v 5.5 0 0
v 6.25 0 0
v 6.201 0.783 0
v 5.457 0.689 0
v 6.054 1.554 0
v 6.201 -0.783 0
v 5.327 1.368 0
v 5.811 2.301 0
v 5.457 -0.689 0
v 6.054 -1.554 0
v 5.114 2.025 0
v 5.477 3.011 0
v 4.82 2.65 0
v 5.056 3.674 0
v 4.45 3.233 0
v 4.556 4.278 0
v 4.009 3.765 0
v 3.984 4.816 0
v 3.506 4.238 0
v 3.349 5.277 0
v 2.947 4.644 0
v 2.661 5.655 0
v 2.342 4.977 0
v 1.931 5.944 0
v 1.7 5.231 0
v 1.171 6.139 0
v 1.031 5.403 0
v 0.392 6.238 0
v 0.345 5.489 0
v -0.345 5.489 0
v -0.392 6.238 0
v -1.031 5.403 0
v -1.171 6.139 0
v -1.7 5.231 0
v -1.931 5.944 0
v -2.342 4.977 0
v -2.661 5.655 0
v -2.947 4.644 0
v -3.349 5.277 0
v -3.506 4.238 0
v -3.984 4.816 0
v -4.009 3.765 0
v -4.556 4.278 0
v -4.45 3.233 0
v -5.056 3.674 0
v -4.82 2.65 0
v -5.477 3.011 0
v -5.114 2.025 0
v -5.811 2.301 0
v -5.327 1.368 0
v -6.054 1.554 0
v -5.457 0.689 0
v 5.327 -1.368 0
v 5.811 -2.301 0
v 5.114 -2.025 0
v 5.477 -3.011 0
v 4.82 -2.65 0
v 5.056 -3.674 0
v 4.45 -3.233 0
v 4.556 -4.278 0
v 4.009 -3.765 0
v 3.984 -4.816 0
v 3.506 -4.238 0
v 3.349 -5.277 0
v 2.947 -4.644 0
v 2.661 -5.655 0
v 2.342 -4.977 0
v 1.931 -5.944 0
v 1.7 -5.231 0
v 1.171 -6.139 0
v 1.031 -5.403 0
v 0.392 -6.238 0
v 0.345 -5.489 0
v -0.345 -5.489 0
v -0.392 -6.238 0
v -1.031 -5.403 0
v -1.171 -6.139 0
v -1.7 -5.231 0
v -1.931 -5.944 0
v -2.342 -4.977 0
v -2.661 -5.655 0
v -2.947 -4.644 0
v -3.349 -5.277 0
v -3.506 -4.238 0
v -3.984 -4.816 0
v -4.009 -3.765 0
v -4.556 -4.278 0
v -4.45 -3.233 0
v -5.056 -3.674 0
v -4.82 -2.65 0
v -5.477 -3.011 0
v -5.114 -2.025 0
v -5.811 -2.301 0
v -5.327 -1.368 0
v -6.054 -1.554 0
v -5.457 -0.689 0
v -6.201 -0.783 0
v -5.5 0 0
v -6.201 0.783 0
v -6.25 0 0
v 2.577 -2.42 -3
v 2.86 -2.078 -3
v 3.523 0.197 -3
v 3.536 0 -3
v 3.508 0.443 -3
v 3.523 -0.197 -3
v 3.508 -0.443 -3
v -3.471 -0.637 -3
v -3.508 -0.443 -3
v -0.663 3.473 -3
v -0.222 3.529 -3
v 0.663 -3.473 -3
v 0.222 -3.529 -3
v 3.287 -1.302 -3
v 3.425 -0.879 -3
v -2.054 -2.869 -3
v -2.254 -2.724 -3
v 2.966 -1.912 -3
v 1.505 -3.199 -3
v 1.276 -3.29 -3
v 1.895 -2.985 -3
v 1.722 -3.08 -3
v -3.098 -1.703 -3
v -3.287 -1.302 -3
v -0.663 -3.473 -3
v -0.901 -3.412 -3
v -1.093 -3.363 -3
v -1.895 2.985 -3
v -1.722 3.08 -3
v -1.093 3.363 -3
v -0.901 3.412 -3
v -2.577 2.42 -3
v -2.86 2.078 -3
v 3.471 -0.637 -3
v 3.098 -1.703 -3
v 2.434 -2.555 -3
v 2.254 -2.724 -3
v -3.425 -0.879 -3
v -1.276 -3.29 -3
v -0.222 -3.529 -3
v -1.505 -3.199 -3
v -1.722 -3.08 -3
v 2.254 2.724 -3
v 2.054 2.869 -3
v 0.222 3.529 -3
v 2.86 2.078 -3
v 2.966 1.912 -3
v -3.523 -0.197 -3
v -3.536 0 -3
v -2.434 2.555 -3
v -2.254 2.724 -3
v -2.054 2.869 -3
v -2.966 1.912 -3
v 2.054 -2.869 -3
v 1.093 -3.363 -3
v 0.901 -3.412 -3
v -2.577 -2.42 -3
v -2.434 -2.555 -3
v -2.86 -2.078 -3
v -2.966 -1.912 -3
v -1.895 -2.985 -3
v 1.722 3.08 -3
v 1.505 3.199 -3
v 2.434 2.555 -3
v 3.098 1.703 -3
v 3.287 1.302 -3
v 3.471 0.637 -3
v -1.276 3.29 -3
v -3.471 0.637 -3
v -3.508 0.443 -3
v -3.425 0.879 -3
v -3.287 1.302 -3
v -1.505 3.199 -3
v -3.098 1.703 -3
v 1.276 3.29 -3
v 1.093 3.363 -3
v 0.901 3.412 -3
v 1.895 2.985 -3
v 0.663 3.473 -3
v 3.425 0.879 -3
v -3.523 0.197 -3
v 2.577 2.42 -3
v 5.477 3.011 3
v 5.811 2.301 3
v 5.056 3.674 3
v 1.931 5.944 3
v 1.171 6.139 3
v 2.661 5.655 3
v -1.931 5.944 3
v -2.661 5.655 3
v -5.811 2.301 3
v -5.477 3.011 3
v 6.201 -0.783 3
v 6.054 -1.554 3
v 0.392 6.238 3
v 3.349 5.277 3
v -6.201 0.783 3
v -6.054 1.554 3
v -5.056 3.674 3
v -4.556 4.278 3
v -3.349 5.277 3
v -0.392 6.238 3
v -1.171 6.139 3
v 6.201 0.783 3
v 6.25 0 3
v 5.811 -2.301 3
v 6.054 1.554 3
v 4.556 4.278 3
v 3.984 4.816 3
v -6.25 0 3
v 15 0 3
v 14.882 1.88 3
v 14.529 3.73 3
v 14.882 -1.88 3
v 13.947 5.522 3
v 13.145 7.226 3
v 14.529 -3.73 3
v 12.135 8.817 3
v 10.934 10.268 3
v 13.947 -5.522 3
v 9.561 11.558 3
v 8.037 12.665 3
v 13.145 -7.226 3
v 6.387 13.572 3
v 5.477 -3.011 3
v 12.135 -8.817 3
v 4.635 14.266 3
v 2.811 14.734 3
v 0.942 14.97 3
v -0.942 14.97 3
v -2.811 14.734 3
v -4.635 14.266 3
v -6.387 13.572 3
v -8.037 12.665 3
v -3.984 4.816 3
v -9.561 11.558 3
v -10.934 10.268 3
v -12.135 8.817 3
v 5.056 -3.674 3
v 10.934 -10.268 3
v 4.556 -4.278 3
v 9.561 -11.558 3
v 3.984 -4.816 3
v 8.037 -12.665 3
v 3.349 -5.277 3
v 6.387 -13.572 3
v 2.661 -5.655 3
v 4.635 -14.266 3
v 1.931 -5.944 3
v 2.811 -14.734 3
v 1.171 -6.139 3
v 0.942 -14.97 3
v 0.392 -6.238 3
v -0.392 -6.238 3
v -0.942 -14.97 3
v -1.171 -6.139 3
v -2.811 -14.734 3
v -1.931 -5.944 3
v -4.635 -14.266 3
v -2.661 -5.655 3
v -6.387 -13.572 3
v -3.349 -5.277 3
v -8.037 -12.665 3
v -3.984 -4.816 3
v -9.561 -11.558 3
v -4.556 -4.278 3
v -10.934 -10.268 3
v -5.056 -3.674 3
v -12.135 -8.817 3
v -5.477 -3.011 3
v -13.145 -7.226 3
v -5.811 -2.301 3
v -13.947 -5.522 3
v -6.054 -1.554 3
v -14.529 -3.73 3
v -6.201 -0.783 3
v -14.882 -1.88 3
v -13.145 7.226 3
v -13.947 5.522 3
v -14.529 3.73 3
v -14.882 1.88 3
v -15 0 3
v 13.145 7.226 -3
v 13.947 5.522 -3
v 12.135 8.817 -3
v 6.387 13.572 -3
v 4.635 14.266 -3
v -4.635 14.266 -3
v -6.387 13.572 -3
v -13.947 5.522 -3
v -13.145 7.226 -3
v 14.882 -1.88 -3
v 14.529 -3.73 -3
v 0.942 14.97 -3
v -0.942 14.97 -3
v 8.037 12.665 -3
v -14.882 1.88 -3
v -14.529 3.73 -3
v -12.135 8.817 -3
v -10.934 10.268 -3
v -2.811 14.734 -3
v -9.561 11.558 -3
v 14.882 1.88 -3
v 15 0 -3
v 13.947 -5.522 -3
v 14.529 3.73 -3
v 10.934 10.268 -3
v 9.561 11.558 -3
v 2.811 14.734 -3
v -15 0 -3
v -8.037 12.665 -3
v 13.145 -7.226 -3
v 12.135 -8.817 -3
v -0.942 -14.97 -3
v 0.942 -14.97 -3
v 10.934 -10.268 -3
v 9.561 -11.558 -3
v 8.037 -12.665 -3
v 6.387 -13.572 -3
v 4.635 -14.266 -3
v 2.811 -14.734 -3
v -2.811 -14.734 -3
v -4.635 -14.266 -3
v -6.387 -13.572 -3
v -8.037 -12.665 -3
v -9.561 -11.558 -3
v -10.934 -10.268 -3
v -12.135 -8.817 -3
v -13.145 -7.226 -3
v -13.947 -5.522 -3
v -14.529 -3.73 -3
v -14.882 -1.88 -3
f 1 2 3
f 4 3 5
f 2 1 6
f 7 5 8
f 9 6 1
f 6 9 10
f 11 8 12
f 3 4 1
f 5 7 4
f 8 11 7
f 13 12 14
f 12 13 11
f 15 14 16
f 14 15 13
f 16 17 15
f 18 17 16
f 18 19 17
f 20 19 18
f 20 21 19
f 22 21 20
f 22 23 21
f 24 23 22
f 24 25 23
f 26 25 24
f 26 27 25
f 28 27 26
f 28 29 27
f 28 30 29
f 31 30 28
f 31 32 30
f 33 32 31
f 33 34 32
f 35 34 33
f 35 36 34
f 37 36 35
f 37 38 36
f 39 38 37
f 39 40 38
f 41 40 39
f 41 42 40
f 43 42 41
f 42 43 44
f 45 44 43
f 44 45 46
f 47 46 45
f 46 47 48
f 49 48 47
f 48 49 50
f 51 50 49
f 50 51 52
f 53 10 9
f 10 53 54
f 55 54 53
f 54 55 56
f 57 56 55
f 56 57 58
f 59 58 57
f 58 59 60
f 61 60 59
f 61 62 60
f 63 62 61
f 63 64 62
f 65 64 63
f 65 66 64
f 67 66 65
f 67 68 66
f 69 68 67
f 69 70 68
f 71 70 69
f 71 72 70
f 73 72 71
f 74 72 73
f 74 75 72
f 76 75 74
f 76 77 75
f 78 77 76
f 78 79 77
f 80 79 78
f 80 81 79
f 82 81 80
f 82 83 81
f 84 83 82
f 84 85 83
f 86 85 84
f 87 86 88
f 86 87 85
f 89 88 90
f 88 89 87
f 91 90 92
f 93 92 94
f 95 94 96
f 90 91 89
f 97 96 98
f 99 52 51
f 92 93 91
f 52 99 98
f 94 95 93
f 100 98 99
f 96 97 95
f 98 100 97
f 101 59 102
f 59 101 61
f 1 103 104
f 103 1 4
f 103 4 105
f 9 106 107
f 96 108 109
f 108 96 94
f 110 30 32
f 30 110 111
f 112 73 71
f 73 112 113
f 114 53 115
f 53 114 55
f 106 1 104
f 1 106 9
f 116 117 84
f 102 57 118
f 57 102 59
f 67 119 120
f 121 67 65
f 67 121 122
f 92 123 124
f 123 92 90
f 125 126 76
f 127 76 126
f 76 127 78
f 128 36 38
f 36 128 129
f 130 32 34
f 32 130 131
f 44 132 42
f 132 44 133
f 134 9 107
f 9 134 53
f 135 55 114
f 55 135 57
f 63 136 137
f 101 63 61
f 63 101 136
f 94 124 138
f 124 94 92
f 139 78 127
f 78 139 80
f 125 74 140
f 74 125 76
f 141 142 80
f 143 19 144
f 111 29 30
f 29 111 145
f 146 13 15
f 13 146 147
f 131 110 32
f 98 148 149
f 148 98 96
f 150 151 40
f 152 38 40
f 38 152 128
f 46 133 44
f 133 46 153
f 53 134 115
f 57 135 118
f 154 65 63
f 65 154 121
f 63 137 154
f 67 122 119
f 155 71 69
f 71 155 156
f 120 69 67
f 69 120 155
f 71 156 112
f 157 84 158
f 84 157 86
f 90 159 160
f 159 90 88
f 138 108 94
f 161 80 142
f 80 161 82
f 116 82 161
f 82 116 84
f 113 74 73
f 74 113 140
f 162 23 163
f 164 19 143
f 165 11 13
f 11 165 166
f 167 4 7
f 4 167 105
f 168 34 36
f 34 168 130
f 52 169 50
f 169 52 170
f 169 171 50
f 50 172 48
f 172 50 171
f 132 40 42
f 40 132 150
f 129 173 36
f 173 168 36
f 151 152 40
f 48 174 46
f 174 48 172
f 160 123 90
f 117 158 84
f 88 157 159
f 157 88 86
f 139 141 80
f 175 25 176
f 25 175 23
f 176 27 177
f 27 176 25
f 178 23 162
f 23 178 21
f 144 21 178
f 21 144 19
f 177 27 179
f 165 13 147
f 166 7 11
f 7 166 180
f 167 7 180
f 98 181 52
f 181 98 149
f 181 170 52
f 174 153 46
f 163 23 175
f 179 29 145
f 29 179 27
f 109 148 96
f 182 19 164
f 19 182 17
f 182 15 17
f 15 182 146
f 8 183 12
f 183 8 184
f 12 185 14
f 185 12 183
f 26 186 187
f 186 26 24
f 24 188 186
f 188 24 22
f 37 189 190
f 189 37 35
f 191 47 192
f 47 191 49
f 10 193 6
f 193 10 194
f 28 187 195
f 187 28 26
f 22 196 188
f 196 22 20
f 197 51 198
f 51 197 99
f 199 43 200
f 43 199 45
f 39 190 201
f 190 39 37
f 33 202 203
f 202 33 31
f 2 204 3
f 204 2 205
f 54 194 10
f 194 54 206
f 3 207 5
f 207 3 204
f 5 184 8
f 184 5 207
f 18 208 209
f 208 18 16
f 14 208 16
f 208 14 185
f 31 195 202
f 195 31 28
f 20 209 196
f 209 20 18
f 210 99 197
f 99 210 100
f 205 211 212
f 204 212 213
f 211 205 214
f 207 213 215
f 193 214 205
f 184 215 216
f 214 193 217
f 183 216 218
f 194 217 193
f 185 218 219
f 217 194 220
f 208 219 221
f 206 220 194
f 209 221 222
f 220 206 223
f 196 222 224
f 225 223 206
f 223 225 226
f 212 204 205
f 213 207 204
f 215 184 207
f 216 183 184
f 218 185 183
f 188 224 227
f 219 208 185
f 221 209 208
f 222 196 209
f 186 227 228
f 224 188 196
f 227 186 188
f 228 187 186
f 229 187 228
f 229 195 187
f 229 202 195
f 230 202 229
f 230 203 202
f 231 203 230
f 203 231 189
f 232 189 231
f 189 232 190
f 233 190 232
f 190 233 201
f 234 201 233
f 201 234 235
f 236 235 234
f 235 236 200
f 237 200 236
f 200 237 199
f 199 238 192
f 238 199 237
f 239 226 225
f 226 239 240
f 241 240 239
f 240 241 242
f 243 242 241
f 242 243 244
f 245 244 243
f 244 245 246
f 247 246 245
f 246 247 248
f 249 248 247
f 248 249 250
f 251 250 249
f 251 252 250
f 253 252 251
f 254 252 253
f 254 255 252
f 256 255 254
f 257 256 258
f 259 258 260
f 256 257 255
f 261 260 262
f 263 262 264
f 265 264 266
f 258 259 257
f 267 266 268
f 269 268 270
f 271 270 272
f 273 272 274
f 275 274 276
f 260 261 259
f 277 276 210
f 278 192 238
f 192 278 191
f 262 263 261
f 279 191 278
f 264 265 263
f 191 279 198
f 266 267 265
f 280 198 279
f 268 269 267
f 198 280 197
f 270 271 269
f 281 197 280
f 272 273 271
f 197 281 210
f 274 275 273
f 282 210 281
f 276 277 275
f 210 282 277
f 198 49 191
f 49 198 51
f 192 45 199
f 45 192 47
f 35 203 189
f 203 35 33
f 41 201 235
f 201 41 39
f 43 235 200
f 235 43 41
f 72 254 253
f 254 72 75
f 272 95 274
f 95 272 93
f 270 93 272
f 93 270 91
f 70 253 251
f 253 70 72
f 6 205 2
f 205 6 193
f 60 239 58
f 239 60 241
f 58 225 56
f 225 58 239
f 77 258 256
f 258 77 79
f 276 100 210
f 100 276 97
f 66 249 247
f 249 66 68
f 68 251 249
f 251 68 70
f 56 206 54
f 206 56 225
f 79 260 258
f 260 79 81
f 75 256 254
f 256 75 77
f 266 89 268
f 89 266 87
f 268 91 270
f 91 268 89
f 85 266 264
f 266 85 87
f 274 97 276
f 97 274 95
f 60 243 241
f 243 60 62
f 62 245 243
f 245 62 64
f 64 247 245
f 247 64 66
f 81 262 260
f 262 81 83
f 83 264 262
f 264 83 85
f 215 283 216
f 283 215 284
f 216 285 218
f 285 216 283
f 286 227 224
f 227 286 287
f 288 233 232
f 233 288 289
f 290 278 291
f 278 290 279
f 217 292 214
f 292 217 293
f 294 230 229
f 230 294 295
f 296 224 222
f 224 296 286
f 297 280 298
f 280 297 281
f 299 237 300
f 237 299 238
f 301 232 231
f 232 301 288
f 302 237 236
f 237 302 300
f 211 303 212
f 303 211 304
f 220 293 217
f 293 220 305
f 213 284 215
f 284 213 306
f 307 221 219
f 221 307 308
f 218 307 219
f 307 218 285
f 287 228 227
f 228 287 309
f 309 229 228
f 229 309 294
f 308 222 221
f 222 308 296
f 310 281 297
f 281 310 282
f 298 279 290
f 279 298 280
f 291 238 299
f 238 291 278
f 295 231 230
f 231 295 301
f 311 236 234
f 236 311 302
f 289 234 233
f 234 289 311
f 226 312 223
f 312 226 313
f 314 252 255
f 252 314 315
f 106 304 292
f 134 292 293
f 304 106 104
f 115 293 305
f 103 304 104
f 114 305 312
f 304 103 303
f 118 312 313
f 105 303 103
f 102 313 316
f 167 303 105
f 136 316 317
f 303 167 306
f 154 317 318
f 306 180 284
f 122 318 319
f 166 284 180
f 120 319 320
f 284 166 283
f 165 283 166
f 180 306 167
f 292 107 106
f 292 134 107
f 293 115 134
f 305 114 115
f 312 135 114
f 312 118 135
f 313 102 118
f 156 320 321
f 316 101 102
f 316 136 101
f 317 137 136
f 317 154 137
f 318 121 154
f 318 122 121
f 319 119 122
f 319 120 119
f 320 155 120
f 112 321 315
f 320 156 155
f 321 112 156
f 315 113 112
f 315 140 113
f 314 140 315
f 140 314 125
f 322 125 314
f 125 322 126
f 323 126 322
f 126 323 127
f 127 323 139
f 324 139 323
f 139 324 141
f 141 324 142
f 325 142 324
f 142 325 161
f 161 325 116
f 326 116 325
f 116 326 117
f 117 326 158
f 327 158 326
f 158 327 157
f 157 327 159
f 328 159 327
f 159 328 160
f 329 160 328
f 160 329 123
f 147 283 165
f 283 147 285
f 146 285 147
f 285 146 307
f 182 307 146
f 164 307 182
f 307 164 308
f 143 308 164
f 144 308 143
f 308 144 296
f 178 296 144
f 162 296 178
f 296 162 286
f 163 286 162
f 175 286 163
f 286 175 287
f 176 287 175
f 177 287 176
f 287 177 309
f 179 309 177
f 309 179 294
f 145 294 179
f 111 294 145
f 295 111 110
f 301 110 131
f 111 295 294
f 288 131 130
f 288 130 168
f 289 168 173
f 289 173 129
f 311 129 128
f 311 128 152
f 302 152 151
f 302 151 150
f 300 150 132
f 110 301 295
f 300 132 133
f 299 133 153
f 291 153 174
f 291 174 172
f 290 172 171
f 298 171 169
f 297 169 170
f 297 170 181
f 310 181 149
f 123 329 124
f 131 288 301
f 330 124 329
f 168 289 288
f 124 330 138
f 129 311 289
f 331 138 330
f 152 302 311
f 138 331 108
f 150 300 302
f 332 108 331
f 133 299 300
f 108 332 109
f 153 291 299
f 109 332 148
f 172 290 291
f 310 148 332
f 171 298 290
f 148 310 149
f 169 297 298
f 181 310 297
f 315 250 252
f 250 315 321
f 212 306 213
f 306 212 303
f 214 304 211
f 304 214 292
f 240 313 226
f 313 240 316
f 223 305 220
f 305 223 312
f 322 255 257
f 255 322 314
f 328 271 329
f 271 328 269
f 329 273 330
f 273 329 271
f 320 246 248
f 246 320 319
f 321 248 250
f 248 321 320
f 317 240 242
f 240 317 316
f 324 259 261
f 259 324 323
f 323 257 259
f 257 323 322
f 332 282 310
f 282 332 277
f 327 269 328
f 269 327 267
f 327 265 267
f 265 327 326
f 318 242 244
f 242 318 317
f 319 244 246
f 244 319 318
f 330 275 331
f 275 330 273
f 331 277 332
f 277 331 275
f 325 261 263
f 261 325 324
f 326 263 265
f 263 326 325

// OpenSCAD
$fn = 50;


difference() {
	union() {
		translate(v = [0, 0, -3.0000000000]) {
			cylinder(h = 6, r = 15.0000000000);
		}
	}
	union() {
		translate(v = [0, 0, 0]) {
			rotate(a = [0, 0, 0]) {
				difference() {
					union() {
						translate(v = [0, 0, -6.0000000000]) {
							cylinder(h = 6, r = 2.2500000000);
						}
						translate(v = [0, 0, -4.2000000000]) {
							cylinder(h = 4.2000000000, r1 = 2.7500000000, r2 = 5.5000000000);
						}
						translate(v = [0, 0, -6.0000000000]) {
							cylinder(h = 6, r = 2.7500000000);
						}
						translate(v = [0, 0, -6.0000000000]) {
							cylinder(h = 6, r = 2.2500000000);
						}
					}
					union();
				}
			}
		}
		#cylinder(h = 3, r = 6.2500000000);
	}
}
